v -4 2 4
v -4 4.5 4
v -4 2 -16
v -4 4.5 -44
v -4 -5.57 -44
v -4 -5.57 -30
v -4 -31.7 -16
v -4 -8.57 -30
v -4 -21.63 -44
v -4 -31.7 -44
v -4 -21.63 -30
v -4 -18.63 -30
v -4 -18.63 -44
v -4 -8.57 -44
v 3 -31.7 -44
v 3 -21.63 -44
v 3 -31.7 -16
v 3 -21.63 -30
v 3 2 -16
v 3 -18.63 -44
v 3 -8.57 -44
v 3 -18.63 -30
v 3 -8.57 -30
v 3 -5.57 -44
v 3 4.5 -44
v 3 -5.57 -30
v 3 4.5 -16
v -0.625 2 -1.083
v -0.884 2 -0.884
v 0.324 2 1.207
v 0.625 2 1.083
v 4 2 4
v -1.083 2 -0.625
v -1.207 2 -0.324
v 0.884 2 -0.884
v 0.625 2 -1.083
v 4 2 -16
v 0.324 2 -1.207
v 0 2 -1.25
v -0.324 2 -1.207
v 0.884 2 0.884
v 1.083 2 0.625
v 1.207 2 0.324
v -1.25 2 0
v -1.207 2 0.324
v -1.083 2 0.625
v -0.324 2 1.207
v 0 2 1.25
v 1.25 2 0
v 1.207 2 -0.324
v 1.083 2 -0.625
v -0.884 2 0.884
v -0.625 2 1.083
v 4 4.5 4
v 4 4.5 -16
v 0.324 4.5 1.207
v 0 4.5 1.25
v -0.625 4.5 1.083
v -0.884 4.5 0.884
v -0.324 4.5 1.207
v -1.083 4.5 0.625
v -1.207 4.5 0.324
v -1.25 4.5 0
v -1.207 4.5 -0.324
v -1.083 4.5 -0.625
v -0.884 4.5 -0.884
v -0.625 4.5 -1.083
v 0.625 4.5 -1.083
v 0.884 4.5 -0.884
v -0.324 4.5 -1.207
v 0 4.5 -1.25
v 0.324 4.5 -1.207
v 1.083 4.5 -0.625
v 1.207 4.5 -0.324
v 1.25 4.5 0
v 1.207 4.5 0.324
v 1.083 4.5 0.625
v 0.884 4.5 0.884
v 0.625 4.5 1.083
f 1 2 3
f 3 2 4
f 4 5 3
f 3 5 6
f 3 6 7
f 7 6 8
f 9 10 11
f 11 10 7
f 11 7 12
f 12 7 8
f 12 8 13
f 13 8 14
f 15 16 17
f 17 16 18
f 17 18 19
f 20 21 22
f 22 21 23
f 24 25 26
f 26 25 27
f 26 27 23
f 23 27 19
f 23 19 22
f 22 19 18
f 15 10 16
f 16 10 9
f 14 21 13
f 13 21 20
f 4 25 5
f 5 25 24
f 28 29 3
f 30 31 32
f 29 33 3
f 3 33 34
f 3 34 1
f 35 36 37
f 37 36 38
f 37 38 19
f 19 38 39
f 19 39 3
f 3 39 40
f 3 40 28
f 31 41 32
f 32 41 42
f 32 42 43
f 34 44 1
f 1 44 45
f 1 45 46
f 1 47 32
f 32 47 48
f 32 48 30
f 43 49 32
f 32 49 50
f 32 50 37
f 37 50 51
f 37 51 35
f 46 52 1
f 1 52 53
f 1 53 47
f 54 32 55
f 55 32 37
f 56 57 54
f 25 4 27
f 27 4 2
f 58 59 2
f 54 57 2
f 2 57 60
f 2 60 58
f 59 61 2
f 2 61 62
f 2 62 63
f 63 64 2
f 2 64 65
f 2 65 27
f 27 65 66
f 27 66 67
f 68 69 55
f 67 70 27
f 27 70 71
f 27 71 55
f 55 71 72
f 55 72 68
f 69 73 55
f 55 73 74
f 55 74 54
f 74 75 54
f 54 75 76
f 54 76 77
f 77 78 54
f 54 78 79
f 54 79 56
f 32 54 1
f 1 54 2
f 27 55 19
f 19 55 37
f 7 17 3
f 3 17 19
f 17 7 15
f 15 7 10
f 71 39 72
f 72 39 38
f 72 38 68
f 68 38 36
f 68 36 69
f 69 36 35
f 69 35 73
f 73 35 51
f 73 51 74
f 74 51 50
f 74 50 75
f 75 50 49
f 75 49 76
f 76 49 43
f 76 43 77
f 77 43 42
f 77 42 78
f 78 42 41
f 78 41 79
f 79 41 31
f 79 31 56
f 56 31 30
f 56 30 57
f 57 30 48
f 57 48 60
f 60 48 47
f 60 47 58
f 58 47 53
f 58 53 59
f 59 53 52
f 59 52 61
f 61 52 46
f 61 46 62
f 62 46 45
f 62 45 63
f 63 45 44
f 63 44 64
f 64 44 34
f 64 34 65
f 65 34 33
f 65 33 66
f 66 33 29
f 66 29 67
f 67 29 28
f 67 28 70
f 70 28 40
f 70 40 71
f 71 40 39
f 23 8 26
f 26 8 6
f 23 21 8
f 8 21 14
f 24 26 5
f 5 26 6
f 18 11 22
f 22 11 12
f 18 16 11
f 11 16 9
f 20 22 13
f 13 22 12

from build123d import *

# Parameters (mm, degrees)
S_BOX1_W       = 8
S_BOX1_H       = 2.5
BOSS_1_DEPTH   = 20
S_BOX2_W       = 7
S_BOX2_H       = 36.2
BOSS_2_DEPTH   = 28
S_HOLE3_R      = 1.25
HOLE_3_DEPTH   = 2.7
S_CUT4_W       = 7.2
S_CUT4_H       = 3
POCKET_4_DEPTH = 14.1
S_CUT5_W       = 7.2
S_CUT5_H       = 3
POCKET_5_DEPTH = 14.1


with BuildPart() as part:
    # S_box1 → Boss_1 (new body)
    with BuildSketch(Plane.XY.offset(-16)):
        with Locations((0, 3.25)):
            Rectangle(S_BOX1_W, S_BOX1_H)
    extrude(amount=BOSS_1_DEPTH)

    # S_box2 → Boss_2 (add)
    with BuildSketch(Plane.XY.offset(-44)):
        with Locations((-0.5, -13.6)):
            Rectangle(S_BOX2_W, S_BOX2_H)
    extrude(amount=BOSS_2_DEPTH)

    # S_hole3 → Hole_3 (cut)
    with BuildSketch(Plane(origin=(0, 1.9, 0), x_dir=(1, 0, 0), z_dir=(0, 1, 0))):
        with Locations(Location((0, 0, 0), (0, 0, 90))):
            Circle(S_HOLE3_R)
    extrude(amount=HOLE_3_DEPTH, mode=Mode.SUBTRACT)

    # S_cut4 → Pocket_4 (cut)
    with BuildSketch(Plane.XY.offset(-44.1)):
        with Locations((-0.5, -7.07)):
            Rectangle(S_CUT4_W, S_CUT4_H)
    extrude(amount=POCKET_4_DEPTH, mode=Mode.SUBTRACT)

    # S_cut5 → Pocket_5 (cut)
    with BuildSketch(Plane.XY.offset(-44.1)):
        with Locations((-0.5, -20.13)):
            Rectangle(S_CUT5_W, S_CUT5_H)
    extrude(amount=POCKET_5_DEPTH, mode=Mode.SUBTRACT)


solid = part.part
